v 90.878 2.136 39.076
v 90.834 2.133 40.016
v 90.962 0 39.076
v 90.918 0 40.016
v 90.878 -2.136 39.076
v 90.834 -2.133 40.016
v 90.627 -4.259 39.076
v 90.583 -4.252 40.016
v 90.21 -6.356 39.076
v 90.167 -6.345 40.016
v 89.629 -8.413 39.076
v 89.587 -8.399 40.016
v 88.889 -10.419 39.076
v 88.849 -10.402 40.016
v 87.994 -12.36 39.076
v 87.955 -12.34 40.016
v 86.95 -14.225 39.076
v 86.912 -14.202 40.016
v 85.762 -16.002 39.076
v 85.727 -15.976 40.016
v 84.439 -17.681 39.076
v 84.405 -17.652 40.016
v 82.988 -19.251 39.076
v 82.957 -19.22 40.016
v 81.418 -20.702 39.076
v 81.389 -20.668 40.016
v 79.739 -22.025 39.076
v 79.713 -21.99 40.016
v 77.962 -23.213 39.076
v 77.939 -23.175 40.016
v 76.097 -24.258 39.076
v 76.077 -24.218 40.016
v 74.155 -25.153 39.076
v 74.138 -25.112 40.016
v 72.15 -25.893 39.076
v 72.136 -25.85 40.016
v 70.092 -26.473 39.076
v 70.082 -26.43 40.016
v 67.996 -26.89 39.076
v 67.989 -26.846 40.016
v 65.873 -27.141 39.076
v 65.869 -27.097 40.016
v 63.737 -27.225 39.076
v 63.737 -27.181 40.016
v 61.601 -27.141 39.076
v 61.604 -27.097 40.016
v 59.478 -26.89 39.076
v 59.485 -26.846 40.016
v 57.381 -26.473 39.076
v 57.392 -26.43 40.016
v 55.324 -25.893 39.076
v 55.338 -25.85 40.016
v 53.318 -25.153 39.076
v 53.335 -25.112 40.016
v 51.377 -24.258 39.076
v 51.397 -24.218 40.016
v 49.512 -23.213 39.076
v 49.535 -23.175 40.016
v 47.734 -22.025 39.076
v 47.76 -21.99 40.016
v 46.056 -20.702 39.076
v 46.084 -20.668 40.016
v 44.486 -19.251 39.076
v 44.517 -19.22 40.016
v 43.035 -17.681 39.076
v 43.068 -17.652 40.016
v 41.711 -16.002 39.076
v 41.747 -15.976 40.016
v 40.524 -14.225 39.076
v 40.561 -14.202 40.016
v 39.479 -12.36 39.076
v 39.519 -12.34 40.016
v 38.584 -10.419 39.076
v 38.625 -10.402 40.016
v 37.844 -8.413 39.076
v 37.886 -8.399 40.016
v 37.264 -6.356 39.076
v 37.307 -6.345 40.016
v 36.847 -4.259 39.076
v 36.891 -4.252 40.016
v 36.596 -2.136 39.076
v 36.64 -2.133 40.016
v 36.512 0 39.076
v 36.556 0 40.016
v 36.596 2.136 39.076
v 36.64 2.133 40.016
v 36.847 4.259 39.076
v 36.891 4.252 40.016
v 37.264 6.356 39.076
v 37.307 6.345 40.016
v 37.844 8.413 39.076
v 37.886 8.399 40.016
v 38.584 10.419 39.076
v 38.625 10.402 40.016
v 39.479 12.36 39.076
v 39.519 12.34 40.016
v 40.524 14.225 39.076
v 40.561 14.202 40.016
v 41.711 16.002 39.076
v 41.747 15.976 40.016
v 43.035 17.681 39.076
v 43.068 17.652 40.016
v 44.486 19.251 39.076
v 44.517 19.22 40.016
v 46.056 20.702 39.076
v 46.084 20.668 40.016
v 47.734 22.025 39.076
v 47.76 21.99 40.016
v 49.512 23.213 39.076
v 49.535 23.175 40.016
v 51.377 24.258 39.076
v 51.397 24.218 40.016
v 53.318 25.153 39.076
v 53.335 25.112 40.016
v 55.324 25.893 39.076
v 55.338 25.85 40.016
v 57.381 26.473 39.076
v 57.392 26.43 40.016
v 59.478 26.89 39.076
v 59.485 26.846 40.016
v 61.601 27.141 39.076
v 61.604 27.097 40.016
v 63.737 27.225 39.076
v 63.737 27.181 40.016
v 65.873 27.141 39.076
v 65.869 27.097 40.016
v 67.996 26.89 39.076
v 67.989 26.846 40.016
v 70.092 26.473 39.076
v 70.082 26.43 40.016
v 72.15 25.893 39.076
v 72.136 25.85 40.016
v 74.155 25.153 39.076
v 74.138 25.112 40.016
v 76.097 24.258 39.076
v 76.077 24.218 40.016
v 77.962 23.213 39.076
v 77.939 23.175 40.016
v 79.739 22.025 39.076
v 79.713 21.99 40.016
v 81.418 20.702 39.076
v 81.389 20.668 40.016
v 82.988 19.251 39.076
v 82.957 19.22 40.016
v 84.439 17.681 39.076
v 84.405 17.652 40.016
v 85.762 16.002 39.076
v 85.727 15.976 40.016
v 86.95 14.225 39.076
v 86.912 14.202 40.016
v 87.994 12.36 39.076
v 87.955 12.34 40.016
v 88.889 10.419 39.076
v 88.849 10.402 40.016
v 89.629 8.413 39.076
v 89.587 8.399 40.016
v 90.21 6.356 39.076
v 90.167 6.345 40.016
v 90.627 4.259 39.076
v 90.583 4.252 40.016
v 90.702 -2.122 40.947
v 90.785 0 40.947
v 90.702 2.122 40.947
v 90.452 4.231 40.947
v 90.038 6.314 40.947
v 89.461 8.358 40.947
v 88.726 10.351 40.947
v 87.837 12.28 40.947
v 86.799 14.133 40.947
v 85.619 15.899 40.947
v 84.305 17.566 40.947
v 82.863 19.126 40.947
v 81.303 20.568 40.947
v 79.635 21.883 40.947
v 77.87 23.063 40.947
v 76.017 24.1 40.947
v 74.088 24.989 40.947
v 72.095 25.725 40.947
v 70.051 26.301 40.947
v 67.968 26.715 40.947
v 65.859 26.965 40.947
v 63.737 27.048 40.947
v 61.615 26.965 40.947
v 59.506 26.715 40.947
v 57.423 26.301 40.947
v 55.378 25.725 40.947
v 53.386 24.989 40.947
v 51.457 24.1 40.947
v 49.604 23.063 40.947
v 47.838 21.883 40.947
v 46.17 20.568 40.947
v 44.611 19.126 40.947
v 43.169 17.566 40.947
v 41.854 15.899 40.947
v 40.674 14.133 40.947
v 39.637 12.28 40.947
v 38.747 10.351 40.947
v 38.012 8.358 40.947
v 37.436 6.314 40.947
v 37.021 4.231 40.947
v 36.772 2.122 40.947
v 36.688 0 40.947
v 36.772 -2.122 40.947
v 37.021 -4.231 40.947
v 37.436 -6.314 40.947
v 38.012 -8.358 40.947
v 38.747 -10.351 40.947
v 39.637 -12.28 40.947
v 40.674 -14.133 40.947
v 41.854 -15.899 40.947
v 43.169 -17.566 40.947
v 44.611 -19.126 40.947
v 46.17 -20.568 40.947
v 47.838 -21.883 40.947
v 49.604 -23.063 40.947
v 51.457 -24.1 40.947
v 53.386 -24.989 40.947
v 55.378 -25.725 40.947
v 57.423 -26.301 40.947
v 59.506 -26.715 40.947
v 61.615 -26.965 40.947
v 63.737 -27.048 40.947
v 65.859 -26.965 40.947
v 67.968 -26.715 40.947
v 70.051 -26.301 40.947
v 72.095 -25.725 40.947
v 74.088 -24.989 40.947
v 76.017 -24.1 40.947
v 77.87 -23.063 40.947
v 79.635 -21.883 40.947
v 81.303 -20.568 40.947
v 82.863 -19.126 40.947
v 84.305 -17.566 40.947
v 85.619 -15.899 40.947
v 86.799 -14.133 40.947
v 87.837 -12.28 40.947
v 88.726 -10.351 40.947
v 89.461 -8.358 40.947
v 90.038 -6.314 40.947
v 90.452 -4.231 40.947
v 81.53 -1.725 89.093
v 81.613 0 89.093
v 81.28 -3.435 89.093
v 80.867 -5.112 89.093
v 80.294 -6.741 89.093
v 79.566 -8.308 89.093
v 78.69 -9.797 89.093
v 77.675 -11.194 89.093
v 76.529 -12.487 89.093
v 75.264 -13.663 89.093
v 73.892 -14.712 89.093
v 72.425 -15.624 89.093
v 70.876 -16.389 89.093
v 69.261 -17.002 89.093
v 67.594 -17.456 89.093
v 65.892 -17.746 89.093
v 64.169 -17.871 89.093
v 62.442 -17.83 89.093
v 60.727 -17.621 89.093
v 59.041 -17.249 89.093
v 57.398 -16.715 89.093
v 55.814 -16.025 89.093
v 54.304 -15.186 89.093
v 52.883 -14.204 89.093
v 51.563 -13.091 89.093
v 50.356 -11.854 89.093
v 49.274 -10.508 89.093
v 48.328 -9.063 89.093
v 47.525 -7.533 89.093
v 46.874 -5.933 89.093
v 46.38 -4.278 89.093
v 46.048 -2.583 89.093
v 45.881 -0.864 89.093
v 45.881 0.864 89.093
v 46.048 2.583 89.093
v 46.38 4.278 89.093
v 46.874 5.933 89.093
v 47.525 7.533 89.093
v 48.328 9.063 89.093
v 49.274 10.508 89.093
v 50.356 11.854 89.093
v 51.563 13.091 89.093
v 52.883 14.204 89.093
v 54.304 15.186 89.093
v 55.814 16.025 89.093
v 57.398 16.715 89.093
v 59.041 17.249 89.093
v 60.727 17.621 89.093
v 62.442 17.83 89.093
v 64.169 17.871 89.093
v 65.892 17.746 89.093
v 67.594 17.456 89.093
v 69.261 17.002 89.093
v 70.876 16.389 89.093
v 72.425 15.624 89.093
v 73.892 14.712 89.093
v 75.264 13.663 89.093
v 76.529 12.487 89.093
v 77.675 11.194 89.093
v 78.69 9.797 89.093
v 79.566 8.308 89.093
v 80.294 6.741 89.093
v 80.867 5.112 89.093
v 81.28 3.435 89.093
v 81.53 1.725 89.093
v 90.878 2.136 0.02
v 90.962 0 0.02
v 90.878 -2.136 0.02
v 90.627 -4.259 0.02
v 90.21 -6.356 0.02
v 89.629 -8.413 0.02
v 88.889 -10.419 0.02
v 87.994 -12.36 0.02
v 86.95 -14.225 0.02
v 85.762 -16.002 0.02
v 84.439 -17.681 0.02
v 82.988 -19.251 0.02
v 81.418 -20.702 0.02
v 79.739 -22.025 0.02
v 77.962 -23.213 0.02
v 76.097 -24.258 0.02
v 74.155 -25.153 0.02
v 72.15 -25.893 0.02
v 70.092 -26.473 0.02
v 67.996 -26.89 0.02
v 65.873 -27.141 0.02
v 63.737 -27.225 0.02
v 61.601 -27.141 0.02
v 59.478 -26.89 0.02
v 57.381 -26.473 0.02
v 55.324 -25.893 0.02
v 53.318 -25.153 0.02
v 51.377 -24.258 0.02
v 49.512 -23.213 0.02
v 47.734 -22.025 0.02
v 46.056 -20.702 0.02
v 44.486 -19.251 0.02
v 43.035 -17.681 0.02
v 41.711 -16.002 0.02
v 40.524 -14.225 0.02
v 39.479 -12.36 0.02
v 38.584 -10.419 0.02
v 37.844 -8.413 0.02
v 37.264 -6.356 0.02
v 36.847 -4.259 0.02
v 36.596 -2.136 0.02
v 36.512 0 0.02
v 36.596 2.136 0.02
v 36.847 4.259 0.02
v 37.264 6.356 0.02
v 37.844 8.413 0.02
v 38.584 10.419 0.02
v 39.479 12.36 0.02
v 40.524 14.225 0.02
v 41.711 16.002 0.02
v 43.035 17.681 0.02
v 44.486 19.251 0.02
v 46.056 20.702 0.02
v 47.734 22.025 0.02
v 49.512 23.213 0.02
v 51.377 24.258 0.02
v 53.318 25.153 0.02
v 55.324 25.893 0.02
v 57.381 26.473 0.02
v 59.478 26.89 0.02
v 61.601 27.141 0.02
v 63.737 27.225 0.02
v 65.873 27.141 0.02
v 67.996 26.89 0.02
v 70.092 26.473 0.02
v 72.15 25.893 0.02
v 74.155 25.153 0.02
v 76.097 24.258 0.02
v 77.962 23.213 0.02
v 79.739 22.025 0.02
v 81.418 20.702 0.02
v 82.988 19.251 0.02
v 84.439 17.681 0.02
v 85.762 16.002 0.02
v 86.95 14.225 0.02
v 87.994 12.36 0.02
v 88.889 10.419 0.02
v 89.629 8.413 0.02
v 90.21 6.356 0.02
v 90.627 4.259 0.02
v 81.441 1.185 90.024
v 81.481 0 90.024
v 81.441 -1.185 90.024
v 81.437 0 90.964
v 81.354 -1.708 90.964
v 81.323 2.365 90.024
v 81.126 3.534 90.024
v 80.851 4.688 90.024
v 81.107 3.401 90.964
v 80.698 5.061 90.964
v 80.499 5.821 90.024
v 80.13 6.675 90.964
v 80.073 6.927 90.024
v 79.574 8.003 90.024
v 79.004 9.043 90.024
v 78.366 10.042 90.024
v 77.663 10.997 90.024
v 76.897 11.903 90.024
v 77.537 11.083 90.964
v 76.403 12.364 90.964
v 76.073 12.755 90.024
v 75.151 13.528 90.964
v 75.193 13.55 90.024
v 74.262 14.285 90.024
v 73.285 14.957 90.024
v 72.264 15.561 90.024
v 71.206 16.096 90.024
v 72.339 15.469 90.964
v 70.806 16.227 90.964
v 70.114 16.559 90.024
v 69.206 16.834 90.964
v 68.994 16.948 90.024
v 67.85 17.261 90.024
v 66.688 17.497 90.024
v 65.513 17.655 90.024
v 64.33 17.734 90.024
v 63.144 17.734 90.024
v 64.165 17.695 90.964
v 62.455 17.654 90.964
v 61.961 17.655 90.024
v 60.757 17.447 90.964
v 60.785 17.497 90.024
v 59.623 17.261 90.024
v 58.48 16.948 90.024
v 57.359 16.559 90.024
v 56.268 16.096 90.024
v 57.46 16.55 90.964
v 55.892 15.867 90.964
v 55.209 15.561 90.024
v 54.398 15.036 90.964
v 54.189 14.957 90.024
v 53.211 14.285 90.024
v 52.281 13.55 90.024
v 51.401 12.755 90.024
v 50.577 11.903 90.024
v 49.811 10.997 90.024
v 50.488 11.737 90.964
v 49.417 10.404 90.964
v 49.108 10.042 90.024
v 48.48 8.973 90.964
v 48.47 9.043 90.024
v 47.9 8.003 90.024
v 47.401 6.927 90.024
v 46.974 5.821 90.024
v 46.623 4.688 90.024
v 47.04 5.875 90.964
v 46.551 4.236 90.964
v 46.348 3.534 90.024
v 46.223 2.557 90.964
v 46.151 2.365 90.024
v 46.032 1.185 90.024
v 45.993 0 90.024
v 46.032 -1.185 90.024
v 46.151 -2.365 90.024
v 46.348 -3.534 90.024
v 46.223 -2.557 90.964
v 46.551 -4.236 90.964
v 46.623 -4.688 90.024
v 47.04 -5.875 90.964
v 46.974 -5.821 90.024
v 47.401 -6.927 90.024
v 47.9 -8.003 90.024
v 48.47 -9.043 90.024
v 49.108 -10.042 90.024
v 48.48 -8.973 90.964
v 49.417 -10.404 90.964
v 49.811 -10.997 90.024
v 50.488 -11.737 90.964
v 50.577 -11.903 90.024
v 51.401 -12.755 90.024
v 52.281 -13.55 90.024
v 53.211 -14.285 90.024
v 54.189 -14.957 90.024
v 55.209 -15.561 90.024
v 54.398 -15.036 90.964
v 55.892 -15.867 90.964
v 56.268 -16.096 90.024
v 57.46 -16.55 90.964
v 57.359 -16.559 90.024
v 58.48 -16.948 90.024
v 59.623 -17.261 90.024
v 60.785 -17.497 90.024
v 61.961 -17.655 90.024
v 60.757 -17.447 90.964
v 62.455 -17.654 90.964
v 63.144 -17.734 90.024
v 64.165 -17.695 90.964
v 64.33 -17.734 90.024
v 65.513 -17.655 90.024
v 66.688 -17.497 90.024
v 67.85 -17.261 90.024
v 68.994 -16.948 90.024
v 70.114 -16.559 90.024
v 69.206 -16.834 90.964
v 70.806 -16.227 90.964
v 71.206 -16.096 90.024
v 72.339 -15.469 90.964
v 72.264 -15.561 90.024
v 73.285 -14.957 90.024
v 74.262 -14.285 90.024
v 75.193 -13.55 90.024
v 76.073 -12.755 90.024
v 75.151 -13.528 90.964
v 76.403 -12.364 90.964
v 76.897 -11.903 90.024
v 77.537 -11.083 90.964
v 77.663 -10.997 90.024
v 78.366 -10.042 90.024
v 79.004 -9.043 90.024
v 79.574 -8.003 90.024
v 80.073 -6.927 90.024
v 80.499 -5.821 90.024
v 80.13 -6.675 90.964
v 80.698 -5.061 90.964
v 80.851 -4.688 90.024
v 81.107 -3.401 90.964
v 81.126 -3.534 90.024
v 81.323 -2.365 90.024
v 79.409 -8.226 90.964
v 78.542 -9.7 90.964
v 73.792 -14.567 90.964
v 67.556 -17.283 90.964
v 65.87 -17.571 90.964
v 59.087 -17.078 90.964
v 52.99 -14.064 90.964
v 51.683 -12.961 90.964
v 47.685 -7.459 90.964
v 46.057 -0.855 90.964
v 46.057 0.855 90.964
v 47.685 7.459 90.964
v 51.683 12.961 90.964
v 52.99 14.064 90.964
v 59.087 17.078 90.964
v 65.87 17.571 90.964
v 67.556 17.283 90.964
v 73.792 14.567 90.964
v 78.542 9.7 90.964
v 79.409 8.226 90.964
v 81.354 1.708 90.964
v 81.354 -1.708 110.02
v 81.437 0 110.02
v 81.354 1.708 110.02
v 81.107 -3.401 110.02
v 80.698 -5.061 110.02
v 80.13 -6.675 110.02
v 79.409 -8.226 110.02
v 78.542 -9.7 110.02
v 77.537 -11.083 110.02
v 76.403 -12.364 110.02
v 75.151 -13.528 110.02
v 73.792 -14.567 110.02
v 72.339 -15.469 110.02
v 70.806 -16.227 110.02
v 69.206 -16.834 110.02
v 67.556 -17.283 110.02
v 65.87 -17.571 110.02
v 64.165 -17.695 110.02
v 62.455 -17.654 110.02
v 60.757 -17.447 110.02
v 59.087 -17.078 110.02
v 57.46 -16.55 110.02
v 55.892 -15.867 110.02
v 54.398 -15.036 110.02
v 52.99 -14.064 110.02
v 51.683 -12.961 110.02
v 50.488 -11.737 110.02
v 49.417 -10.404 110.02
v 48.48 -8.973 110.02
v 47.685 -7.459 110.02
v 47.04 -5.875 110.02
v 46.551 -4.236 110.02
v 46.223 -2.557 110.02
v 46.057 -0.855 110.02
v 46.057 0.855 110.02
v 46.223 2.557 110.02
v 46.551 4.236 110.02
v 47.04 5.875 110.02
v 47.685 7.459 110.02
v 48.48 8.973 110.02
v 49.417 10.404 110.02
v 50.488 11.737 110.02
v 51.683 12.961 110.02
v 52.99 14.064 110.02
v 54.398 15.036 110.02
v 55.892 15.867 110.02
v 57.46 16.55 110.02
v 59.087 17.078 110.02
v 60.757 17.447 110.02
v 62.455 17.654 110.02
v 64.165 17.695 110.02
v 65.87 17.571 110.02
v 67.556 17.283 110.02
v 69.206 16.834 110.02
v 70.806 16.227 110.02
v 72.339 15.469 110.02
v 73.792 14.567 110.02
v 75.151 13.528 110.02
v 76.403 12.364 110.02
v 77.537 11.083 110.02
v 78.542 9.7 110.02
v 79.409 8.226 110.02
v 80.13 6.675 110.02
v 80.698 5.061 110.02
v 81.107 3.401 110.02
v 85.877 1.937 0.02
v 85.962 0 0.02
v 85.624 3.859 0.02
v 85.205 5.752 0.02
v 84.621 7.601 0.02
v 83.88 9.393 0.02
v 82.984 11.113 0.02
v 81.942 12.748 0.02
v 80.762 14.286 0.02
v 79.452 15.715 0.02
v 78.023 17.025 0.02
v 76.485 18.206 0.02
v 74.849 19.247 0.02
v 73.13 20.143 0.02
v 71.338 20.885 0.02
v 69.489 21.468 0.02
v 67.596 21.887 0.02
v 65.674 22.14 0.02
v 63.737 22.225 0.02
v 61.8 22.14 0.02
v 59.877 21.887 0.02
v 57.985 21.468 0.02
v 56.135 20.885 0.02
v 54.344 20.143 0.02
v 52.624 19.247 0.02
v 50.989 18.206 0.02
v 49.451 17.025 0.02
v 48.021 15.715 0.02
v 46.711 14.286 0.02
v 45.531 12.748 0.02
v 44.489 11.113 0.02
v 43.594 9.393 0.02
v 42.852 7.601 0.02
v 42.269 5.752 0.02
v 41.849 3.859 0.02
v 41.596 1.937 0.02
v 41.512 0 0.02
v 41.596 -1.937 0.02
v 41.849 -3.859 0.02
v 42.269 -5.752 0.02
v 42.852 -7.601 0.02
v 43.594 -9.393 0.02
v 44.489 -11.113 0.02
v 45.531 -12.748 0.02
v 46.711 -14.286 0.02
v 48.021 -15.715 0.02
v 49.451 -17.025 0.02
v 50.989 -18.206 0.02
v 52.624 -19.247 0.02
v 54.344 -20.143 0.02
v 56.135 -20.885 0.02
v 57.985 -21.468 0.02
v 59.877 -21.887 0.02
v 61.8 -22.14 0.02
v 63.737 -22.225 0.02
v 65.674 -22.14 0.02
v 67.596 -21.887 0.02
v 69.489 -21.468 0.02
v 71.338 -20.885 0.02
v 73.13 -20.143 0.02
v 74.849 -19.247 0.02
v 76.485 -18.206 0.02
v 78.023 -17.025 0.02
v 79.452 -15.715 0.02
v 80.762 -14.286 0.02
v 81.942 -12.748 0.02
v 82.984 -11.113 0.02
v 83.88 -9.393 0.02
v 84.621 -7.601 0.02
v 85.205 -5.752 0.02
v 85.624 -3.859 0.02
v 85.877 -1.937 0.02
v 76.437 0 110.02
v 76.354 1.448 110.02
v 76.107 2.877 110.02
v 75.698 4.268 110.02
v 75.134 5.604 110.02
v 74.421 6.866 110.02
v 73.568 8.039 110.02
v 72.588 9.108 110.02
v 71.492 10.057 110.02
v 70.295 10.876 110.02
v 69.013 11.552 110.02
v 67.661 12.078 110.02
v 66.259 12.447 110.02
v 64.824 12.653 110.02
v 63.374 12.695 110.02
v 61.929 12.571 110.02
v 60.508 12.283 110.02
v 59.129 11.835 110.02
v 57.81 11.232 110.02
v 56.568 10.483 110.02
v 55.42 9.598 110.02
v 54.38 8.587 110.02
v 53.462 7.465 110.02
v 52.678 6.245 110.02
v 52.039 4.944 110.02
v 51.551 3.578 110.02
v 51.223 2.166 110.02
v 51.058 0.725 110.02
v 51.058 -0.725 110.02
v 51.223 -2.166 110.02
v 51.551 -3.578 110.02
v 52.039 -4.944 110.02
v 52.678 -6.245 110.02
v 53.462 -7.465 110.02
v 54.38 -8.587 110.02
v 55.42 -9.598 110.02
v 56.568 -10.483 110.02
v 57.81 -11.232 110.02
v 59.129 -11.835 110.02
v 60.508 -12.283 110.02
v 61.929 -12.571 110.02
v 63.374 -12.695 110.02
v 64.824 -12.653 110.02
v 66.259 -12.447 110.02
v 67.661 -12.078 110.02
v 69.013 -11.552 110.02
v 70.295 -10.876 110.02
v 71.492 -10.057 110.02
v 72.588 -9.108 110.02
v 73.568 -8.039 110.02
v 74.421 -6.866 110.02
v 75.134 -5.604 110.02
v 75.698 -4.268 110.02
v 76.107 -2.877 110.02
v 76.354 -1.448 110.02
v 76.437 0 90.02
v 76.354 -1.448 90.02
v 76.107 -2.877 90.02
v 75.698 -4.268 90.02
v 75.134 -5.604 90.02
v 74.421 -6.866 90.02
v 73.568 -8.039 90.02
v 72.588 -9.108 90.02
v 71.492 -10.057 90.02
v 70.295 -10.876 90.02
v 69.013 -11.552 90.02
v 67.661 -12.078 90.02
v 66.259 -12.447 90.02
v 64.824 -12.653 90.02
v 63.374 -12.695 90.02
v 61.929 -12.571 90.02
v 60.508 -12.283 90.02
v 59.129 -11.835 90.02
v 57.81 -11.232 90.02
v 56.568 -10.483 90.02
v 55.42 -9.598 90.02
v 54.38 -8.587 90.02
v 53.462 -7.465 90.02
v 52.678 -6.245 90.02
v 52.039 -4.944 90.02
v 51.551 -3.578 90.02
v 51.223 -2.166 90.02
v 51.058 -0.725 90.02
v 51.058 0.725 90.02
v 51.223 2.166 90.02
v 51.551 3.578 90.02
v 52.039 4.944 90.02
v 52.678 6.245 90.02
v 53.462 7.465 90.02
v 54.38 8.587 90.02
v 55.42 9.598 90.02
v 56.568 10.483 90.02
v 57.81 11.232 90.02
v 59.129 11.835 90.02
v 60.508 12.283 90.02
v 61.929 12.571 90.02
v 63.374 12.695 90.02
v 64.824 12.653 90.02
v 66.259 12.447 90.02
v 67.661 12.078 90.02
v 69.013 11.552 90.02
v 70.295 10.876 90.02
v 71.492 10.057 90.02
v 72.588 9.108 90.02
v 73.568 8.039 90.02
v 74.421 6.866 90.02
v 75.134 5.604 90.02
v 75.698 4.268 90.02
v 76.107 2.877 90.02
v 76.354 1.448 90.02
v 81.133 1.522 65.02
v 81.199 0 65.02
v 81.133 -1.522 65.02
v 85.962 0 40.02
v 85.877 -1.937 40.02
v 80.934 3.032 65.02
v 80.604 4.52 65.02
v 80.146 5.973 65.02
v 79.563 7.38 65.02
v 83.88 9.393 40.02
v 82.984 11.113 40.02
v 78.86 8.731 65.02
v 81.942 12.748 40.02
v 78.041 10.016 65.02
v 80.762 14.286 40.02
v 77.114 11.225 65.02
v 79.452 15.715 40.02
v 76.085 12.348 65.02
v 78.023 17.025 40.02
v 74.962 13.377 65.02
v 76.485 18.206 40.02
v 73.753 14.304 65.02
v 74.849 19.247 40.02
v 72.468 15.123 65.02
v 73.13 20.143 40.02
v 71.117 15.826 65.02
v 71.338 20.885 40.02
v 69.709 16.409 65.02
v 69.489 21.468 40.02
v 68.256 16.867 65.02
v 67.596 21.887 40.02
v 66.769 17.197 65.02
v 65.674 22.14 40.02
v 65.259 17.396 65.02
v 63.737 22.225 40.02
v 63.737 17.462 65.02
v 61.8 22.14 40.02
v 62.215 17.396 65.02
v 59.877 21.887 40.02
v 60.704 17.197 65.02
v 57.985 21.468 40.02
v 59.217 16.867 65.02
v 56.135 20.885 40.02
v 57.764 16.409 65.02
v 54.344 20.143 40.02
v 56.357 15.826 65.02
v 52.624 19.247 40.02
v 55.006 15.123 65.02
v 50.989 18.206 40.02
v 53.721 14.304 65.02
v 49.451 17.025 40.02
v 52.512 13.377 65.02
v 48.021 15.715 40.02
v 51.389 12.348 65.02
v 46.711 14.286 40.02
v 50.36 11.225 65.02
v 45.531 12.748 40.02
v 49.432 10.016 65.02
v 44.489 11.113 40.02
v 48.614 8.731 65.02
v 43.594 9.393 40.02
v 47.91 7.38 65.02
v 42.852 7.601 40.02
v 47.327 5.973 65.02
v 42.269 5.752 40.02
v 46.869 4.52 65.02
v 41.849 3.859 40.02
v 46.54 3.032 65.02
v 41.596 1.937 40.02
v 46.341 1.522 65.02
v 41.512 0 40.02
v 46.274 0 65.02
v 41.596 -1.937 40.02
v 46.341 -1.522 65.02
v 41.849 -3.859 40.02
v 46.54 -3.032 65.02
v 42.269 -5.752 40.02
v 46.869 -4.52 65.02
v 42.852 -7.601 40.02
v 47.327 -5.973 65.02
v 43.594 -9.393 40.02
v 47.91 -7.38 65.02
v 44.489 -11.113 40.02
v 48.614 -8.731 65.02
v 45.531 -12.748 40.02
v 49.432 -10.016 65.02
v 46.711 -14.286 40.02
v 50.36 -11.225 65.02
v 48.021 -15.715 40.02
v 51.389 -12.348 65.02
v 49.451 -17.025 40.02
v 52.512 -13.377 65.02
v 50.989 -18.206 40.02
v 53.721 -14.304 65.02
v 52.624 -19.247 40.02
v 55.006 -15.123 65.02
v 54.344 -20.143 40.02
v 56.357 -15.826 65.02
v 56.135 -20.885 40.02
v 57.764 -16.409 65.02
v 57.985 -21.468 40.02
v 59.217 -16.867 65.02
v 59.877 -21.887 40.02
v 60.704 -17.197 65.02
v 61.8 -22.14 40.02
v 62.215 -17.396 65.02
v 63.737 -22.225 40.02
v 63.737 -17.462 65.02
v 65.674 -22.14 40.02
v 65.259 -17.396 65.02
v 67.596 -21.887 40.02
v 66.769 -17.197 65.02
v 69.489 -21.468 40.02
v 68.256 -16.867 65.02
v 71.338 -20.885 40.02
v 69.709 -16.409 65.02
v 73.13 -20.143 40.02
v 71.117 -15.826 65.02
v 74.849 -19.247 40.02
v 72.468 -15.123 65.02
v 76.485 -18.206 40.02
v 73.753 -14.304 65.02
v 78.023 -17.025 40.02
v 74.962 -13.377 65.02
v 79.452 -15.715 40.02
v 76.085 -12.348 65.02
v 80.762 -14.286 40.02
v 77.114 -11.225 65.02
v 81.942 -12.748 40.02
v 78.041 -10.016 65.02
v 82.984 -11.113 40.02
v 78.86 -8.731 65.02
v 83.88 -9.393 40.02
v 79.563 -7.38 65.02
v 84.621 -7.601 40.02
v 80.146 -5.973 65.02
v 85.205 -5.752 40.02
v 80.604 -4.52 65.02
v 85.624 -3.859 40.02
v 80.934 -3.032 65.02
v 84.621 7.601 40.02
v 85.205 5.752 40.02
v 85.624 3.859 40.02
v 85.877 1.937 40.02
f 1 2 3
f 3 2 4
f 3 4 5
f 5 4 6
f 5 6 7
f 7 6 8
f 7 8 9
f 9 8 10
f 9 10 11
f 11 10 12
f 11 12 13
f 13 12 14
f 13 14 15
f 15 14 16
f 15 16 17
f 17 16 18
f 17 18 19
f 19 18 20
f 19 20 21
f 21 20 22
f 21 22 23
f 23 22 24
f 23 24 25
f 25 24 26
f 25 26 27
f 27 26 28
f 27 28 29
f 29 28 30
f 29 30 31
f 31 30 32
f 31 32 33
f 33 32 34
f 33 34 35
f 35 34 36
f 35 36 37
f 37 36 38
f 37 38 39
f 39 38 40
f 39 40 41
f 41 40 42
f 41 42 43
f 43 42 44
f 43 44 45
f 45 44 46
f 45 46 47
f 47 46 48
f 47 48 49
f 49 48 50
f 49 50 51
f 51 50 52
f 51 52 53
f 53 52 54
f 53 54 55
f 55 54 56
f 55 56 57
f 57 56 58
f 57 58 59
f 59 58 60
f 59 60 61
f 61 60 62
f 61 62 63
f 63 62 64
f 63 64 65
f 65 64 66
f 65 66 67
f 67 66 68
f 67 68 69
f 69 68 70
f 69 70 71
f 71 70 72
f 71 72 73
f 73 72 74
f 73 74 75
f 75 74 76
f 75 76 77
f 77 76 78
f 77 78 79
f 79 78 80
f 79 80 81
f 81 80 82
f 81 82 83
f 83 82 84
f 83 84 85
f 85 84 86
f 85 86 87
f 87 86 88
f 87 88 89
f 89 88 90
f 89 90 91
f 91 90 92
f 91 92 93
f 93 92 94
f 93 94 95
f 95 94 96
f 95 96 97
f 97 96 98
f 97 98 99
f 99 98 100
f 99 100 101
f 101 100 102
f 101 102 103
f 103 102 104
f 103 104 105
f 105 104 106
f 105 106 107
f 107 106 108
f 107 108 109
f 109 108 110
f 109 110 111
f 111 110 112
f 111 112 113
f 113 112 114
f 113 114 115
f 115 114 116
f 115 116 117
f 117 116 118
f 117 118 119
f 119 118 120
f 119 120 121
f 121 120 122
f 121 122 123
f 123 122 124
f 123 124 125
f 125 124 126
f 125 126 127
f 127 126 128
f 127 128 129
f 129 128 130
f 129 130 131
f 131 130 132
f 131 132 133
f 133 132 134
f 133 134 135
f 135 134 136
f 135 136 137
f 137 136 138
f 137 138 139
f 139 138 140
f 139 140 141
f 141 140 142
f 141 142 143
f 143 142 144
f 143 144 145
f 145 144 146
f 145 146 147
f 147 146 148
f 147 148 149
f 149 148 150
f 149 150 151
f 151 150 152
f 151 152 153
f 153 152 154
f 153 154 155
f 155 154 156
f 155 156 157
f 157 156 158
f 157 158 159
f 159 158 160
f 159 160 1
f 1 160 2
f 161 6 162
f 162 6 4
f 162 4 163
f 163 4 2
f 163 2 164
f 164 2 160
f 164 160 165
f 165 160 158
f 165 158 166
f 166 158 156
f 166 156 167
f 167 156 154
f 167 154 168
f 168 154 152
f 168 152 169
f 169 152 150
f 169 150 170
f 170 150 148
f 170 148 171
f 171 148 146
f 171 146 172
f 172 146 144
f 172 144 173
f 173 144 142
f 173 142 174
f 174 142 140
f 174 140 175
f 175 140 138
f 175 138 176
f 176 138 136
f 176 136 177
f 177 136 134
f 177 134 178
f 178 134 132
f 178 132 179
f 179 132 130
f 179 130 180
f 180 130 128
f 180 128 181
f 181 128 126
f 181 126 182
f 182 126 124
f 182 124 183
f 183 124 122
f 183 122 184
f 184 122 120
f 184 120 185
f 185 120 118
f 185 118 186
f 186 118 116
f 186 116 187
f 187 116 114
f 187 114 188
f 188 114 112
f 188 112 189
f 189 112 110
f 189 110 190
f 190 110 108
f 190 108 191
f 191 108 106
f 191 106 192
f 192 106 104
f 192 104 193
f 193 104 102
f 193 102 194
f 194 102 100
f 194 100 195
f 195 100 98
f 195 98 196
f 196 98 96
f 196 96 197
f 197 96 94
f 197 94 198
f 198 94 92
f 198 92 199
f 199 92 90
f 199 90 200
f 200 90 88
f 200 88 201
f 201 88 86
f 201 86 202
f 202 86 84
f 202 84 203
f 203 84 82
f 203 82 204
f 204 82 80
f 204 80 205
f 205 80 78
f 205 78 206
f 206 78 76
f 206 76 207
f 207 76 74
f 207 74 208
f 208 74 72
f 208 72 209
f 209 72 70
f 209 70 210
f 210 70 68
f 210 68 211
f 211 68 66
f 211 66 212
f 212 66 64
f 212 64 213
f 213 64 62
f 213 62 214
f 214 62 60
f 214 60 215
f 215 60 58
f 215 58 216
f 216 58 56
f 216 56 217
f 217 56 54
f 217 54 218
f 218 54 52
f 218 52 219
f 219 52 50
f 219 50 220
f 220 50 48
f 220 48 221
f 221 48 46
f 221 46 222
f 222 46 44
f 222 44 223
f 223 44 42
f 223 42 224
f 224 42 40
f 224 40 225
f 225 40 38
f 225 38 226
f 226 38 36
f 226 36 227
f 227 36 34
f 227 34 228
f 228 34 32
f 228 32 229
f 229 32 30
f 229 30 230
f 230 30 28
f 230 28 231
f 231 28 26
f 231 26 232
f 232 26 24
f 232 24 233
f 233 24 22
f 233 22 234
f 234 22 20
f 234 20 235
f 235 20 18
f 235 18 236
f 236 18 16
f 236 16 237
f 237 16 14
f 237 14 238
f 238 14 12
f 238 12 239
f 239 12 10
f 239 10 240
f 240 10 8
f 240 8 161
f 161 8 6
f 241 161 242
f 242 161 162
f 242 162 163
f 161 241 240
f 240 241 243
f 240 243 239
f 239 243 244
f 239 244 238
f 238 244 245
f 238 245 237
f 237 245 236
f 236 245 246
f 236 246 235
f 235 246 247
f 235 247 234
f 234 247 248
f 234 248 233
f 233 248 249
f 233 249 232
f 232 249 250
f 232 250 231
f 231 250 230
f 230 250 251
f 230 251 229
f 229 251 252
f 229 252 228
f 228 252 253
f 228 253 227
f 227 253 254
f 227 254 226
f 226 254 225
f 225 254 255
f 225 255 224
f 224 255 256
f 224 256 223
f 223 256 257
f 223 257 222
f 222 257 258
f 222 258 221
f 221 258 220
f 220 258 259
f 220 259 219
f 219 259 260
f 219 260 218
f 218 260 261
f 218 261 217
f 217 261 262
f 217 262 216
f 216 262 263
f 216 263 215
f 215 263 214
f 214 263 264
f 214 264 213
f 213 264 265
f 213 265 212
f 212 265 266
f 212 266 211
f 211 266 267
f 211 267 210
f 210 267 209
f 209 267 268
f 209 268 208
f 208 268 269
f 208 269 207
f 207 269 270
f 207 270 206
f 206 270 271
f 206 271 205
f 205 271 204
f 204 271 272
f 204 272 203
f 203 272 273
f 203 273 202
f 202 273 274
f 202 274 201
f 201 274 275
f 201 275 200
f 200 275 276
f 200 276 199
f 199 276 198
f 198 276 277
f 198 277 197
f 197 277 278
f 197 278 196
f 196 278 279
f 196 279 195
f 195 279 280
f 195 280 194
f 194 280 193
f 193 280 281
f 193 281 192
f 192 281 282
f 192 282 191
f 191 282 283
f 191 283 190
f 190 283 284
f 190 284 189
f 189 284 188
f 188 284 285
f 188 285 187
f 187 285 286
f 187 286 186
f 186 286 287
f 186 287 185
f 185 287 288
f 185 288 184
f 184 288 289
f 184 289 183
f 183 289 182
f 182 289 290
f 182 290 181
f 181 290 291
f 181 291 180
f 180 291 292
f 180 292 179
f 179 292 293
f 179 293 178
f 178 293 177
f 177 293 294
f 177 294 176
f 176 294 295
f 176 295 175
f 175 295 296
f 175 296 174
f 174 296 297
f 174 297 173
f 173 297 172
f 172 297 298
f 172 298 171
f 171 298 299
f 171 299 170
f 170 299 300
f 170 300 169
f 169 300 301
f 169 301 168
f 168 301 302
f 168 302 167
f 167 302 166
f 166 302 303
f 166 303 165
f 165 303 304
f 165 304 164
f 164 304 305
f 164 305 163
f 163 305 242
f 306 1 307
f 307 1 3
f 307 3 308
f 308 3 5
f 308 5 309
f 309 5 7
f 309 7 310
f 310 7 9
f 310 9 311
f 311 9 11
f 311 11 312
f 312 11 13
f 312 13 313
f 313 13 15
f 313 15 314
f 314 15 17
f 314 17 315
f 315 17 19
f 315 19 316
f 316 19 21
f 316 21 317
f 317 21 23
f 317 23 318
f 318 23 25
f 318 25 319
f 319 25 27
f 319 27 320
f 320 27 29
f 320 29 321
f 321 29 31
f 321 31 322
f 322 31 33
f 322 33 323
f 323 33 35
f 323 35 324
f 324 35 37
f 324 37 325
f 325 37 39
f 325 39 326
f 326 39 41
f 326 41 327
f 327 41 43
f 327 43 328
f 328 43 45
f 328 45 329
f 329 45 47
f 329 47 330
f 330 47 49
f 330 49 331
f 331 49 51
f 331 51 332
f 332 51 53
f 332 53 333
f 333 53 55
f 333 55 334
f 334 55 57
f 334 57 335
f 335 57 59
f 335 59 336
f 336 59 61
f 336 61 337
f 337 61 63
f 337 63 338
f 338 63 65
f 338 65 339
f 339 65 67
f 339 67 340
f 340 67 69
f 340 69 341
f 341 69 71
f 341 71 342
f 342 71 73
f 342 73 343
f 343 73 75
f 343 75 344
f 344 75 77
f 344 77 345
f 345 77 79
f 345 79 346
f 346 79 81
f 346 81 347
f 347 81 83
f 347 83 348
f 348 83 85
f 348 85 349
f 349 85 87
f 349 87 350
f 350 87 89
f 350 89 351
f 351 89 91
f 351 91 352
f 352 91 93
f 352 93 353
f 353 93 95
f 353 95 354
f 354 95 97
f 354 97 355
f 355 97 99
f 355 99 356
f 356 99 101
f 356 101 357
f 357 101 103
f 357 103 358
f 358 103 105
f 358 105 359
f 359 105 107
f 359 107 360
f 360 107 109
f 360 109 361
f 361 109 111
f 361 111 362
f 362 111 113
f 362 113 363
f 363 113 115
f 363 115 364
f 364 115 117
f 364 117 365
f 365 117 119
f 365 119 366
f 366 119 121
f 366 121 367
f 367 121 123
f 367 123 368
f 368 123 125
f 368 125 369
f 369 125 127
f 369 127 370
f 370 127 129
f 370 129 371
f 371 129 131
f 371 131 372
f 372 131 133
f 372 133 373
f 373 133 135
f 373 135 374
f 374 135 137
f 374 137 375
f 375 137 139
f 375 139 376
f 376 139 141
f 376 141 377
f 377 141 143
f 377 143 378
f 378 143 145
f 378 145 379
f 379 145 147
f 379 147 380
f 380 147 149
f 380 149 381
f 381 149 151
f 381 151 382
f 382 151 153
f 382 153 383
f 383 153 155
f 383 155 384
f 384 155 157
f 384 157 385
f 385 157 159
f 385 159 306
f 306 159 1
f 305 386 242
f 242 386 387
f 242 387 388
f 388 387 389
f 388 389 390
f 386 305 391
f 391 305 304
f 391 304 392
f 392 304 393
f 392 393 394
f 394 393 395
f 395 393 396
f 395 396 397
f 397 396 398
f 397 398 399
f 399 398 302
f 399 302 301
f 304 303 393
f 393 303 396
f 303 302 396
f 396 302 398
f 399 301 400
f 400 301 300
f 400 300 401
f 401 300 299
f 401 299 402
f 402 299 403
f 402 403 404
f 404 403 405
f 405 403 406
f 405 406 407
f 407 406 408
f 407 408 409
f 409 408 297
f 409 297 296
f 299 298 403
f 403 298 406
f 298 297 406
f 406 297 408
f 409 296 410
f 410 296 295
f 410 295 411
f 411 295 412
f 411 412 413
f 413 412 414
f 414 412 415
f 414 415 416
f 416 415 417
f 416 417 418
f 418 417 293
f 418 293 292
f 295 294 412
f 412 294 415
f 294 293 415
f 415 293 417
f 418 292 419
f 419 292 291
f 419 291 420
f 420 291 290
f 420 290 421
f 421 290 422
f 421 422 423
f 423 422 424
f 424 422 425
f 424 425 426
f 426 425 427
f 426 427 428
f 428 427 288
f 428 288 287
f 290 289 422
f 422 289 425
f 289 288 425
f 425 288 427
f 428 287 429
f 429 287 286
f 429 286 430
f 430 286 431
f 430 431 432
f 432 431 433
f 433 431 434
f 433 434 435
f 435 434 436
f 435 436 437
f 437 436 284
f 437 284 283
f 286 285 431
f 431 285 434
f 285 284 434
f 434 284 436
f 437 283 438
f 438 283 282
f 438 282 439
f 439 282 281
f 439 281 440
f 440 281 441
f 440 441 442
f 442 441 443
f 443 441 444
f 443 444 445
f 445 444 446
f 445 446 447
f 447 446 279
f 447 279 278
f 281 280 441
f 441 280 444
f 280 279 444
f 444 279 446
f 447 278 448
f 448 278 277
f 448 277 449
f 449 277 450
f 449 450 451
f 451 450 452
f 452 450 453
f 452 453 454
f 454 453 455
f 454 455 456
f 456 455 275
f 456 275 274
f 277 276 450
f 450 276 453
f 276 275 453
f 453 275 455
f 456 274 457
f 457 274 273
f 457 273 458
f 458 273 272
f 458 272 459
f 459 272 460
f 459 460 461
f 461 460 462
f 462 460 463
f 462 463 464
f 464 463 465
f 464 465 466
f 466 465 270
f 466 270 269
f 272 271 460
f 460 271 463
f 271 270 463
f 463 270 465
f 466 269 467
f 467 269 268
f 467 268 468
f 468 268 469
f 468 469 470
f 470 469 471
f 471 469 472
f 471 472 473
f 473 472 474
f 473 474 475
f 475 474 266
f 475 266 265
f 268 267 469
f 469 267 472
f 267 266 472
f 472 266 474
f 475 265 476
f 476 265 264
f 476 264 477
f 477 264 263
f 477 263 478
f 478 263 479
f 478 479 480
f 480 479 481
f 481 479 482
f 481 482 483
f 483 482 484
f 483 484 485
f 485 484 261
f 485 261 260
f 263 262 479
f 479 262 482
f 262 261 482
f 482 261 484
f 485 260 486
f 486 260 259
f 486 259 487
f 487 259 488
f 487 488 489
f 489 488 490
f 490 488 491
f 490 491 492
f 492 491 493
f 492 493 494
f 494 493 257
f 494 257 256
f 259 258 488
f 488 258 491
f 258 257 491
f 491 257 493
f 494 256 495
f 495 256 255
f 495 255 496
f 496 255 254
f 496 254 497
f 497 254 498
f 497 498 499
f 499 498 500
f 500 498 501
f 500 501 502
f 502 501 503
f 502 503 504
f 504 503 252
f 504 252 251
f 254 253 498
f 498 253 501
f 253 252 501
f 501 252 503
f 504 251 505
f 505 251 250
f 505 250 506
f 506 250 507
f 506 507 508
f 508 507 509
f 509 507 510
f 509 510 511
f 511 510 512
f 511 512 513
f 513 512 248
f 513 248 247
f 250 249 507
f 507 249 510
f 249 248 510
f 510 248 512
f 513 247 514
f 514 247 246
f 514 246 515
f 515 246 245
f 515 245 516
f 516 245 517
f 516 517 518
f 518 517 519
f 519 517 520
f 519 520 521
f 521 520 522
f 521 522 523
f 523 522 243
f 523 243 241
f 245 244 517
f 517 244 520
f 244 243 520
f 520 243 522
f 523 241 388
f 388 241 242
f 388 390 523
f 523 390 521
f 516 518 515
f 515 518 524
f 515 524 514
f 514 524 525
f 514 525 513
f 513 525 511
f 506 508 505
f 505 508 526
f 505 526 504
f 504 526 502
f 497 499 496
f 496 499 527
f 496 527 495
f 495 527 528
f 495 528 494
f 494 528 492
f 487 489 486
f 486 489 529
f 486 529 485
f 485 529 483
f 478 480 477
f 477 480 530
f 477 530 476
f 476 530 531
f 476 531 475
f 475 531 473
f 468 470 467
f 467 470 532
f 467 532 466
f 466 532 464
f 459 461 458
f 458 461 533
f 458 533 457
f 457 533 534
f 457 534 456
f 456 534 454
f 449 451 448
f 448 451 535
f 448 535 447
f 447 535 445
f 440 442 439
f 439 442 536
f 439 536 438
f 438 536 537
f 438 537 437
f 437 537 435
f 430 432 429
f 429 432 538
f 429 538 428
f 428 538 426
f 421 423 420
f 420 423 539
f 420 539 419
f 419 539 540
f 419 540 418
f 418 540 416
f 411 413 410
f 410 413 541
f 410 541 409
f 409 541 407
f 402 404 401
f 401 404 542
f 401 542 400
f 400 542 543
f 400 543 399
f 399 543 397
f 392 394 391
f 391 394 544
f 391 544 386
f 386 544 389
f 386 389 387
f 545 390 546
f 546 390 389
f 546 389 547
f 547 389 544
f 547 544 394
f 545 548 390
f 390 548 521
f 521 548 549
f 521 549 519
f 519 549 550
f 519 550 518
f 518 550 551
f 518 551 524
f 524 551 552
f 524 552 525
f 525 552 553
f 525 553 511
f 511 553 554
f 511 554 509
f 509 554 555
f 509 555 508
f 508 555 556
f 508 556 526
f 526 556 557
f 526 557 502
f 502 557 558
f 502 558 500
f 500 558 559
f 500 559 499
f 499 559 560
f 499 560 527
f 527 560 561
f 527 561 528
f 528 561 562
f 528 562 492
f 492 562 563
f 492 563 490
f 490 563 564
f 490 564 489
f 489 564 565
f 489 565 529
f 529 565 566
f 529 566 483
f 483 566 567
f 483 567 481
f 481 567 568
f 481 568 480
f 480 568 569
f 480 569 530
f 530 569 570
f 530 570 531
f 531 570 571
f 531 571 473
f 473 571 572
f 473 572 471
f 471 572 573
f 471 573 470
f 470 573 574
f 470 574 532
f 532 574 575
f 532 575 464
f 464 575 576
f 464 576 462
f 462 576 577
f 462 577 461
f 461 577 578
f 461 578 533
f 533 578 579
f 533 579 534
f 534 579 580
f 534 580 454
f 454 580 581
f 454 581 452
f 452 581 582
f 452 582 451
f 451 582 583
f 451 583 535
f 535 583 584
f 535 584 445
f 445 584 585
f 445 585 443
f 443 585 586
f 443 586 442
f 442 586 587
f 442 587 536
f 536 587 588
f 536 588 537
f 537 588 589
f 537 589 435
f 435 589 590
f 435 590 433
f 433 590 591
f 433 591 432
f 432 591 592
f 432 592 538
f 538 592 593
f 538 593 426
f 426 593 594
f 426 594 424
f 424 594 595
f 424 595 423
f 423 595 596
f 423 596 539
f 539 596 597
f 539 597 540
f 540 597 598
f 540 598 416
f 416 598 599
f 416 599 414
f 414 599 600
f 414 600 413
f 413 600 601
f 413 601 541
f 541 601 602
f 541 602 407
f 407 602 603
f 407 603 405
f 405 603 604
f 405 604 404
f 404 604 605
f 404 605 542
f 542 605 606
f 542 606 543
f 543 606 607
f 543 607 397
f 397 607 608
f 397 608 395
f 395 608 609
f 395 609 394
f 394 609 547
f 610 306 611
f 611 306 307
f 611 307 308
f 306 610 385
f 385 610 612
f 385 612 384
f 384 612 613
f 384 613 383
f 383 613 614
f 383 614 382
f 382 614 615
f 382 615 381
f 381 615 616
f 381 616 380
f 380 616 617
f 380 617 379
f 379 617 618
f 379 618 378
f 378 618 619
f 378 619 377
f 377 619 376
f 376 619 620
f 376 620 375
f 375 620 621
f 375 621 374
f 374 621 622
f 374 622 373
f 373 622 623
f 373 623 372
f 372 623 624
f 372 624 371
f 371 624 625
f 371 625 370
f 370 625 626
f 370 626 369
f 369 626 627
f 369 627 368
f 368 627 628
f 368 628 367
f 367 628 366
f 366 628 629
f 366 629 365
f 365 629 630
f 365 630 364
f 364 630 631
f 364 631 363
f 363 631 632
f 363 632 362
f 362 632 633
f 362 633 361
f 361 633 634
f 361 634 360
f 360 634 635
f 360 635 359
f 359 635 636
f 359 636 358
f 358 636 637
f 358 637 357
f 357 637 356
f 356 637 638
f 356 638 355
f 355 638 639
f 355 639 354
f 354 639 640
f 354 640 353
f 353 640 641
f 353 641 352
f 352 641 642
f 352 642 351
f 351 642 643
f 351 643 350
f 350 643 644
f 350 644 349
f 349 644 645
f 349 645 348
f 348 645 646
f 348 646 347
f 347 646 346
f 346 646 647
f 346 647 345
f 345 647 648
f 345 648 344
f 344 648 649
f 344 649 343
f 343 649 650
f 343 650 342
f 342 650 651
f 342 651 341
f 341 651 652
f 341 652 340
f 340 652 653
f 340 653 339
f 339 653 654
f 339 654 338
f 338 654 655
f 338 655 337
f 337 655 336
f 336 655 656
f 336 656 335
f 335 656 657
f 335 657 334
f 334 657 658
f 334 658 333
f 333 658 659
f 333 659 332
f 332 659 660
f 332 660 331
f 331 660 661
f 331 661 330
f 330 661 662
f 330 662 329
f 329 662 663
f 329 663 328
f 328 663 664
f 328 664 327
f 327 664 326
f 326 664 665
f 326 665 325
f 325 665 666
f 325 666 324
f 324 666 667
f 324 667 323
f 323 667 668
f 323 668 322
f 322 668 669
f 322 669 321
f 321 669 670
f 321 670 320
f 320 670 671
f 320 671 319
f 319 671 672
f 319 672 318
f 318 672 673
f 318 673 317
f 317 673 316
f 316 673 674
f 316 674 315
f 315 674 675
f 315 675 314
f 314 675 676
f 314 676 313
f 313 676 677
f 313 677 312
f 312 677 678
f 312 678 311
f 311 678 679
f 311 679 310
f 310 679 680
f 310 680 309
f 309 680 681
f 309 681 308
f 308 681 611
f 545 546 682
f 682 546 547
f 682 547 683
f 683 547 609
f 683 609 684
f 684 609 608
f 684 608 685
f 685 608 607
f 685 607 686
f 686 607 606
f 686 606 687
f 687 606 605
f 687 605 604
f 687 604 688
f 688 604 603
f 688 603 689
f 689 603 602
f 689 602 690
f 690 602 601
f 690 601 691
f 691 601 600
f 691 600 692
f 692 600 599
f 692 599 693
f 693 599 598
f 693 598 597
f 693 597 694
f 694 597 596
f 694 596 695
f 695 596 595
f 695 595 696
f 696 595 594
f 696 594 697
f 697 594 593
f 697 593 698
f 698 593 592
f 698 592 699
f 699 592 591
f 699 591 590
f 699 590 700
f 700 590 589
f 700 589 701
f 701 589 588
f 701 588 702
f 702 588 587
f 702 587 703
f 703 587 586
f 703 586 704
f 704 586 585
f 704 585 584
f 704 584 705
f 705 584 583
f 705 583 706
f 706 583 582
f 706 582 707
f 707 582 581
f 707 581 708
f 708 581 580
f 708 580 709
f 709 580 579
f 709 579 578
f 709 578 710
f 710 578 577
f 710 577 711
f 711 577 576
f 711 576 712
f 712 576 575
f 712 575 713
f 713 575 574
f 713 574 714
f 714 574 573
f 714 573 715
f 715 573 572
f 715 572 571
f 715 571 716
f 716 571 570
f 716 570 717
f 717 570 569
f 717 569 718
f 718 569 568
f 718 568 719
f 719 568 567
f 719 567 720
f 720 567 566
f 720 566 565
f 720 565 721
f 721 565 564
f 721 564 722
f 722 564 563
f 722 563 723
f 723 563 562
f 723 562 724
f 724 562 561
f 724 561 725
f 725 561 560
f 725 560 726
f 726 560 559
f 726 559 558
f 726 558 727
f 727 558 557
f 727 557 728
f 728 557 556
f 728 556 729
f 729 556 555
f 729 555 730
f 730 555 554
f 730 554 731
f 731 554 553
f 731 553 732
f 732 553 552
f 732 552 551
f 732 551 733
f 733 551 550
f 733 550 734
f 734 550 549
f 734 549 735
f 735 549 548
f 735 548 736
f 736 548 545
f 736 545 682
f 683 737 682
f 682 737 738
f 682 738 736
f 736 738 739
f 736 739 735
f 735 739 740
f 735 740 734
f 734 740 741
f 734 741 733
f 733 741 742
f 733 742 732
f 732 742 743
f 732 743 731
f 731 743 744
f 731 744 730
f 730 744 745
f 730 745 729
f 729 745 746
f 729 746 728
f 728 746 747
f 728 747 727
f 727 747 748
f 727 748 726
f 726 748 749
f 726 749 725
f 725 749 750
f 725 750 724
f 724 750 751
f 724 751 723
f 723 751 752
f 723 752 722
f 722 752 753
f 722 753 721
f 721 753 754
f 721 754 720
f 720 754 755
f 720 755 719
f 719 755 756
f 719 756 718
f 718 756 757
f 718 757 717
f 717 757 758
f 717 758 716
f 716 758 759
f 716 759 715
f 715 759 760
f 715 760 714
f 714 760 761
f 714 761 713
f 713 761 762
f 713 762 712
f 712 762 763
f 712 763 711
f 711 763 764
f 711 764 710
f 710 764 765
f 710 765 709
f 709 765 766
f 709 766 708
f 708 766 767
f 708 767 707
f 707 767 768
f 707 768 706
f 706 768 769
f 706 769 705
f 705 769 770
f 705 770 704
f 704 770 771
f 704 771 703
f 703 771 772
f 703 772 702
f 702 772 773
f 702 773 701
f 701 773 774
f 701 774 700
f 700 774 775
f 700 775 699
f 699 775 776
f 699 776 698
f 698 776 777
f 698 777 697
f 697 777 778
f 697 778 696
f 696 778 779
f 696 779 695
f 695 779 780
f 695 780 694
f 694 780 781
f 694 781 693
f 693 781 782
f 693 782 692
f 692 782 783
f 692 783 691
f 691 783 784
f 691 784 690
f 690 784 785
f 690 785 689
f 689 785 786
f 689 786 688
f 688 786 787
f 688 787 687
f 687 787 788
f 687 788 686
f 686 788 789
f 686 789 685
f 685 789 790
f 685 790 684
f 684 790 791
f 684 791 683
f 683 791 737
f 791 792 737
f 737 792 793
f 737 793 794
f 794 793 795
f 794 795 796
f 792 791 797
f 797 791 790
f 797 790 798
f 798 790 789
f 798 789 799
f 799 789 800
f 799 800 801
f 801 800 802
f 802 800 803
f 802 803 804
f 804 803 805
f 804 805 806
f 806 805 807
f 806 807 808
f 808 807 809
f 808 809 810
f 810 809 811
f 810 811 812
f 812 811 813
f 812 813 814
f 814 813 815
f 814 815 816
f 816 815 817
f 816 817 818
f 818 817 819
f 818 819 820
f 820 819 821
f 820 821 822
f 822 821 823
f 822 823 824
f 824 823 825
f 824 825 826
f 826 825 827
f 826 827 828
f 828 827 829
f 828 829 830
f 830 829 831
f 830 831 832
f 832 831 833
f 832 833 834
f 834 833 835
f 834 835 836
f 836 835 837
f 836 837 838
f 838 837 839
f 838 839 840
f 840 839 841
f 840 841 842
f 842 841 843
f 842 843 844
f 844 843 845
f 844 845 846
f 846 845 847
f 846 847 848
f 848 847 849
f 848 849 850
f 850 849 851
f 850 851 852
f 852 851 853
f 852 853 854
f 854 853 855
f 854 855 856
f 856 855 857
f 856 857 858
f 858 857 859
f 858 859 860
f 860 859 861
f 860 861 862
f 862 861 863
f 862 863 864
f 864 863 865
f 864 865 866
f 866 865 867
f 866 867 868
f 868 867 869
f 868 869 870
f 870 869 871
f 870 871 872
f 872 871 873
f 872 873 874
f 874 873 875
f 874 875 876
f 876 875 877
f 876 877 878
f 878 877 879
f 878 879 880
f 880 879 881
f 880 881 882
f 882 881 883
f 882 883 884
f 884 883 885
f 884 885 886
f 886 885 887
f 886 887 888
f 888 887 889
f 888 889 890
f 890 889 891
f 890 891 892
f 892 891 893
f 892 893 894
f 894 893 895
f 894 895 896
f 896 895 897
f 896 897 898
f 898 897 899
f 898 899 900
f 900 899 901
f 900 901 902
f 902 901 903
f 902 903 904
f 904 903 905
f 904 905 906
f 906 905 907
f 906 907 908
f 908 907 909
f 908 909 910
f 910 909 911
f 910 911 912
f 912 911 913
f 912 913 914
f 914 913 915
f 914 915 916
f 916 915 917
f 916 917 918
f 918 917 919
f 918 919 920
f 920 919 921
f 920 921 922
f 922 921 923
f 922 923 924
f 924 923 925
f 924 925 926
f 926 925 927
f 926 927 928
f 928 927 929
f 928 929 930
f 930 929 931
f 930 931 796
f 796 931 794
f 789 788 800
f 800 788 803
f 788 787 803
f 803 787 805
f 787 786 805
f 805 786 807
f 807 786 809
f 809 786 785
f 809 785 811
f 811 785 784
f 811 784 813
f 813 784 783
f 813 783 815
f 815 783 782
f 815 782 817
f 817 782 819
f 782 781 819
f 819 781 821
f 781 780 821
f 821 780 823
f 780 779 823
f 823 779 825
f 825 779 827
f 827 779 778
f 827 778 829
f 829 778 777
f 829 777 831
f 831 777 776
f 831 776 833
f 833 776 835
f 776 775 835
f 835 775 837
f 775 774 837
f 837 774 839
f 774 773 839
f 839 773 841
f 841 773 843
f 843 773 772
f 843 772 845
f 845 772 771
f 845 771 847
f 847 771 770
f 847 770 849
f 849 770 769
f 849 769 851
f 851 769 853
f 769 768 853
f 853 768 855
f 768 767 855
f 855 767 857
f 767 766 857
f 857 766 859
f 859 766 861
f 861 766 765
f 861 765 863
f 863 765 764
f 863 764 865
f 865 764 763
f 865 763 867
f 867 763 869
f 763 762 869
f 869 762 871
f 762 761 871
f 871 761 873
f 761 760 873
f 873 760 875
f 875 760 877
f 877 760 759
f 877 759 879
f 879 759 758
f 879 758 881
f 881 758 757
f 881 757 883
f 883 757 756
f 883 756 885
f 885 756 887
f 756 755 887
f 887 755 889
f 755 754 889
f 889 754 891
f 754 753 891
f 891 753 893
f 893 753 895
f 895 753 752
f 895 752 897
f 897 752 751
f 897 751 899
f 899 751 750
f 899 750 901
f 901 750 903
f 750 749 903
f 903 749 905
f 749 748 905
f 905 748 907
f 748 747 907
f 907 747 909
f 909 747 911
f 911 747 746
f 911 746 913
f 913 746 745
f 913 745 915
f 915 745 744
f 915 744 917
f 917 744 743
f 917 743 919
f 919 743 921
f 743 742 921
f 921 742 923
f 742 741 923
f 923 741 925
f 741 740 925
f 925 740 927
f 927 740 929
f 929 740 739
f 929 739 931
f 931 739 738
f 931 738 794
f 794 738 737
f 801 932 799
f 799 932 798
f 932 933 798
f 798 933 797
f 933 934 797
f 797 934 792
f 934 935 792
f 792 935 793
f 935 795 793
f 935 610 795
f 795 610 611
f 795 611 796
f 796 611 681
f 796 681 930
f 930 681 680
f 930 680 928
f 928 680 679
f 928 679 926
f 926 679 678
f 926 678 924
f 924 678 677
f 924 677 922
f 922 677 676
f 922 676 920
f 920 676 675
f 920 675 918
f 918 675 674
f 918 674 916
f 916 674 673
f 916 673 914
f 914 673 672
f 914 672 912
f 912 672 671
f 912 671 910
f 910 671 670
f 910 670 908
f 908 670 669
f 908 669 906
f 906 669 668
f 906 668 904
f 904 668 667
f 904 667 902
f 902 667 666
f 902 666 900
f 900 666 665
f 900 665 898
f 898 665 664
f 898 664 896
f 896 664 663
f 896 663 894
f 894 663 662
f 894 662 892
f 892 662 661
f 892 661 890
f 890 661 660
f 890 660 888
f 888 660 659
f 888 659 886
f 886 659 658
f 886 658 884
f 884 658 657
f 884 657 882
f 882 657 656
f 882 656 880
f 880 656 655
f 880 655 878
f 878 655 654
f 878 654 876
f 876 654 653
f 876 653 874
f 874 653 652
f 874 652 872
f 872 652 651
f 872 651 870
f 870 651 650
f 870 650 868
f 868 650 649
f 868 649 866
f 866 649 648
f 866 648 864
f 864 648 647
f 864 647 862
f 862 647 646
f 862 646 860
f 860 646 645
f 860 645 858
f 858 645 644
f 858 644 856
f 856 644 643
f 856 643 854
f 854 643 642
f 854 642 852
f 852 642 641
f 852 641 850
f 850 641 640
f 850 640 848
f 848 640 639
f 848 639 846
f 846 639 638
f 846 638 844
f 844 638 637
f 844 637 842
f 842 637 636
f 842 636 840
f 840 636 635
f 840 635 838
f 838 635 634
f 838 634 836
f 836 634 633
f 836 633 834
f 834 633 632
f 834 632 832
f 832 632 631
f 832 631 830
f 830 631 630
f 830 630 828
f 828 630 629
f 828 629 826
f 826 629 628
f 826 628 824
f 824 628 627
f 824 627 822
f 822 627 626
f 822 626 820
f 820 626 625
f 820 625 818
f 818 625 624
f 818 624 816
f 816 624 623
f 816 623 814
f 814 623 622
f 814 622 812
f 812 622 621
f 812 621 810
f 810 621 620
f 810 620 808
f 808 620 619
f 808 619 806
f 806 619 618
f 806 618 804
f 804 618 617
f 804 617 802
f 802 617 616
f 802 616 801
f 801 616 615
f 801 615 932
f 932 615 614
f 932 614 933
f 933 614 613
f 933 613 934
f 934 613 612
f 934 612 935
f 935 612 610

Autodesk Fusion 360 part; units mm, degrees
sketch "Sketch12" plane through (0, 0, 0) normal (0, 1, 0) x (1, 0, 0)
  line L0 (90.9618, -0.0199) -> (90.9618, -40.0199)
  line L1 (90.9618, -40.0199) -> (81.4368, -90.0199)
  line L2 (81.4368, -90.0199) -> (81.4368, -110.0199)
  line L3 (81.4368, -110.0199) -> (76.4368, -110.0199)
  line L4 (76.4368, -110.0199) -> (76.4368, -90.0199)
  line L5 (76.4368, -90.0199) -> (85.9618, -40.0199)
  line L6 (85.9618, -40.0199) -> (85.9618, -0.0199)
  line L7 (85.9618, -0.0199) -> (90.9618, -0.0199)
  line L8 (63.7368, -110.603) -> (63.7368, -0.0809)
  dimension "d16" = 5
  dimension "d17" = 5
  dimension "d18" = 50
  dimension "d19" = 20
  dimension "d20" = 40
  dimension "d21" = 12.7
  dimension "d27" = 22.225
revolve "Revolve1" add sketch "Sketch12" angle 360 about axis through (63.7368, 0, 110.603) along (0, 0, -1)
fillet "Fillet1" radius 10 1 edges at (47.2346, -6.4006, 90.0199)
fillet "Fillet2" radius 10 1 edges at (38.3542, -9.845, 40.0199)
